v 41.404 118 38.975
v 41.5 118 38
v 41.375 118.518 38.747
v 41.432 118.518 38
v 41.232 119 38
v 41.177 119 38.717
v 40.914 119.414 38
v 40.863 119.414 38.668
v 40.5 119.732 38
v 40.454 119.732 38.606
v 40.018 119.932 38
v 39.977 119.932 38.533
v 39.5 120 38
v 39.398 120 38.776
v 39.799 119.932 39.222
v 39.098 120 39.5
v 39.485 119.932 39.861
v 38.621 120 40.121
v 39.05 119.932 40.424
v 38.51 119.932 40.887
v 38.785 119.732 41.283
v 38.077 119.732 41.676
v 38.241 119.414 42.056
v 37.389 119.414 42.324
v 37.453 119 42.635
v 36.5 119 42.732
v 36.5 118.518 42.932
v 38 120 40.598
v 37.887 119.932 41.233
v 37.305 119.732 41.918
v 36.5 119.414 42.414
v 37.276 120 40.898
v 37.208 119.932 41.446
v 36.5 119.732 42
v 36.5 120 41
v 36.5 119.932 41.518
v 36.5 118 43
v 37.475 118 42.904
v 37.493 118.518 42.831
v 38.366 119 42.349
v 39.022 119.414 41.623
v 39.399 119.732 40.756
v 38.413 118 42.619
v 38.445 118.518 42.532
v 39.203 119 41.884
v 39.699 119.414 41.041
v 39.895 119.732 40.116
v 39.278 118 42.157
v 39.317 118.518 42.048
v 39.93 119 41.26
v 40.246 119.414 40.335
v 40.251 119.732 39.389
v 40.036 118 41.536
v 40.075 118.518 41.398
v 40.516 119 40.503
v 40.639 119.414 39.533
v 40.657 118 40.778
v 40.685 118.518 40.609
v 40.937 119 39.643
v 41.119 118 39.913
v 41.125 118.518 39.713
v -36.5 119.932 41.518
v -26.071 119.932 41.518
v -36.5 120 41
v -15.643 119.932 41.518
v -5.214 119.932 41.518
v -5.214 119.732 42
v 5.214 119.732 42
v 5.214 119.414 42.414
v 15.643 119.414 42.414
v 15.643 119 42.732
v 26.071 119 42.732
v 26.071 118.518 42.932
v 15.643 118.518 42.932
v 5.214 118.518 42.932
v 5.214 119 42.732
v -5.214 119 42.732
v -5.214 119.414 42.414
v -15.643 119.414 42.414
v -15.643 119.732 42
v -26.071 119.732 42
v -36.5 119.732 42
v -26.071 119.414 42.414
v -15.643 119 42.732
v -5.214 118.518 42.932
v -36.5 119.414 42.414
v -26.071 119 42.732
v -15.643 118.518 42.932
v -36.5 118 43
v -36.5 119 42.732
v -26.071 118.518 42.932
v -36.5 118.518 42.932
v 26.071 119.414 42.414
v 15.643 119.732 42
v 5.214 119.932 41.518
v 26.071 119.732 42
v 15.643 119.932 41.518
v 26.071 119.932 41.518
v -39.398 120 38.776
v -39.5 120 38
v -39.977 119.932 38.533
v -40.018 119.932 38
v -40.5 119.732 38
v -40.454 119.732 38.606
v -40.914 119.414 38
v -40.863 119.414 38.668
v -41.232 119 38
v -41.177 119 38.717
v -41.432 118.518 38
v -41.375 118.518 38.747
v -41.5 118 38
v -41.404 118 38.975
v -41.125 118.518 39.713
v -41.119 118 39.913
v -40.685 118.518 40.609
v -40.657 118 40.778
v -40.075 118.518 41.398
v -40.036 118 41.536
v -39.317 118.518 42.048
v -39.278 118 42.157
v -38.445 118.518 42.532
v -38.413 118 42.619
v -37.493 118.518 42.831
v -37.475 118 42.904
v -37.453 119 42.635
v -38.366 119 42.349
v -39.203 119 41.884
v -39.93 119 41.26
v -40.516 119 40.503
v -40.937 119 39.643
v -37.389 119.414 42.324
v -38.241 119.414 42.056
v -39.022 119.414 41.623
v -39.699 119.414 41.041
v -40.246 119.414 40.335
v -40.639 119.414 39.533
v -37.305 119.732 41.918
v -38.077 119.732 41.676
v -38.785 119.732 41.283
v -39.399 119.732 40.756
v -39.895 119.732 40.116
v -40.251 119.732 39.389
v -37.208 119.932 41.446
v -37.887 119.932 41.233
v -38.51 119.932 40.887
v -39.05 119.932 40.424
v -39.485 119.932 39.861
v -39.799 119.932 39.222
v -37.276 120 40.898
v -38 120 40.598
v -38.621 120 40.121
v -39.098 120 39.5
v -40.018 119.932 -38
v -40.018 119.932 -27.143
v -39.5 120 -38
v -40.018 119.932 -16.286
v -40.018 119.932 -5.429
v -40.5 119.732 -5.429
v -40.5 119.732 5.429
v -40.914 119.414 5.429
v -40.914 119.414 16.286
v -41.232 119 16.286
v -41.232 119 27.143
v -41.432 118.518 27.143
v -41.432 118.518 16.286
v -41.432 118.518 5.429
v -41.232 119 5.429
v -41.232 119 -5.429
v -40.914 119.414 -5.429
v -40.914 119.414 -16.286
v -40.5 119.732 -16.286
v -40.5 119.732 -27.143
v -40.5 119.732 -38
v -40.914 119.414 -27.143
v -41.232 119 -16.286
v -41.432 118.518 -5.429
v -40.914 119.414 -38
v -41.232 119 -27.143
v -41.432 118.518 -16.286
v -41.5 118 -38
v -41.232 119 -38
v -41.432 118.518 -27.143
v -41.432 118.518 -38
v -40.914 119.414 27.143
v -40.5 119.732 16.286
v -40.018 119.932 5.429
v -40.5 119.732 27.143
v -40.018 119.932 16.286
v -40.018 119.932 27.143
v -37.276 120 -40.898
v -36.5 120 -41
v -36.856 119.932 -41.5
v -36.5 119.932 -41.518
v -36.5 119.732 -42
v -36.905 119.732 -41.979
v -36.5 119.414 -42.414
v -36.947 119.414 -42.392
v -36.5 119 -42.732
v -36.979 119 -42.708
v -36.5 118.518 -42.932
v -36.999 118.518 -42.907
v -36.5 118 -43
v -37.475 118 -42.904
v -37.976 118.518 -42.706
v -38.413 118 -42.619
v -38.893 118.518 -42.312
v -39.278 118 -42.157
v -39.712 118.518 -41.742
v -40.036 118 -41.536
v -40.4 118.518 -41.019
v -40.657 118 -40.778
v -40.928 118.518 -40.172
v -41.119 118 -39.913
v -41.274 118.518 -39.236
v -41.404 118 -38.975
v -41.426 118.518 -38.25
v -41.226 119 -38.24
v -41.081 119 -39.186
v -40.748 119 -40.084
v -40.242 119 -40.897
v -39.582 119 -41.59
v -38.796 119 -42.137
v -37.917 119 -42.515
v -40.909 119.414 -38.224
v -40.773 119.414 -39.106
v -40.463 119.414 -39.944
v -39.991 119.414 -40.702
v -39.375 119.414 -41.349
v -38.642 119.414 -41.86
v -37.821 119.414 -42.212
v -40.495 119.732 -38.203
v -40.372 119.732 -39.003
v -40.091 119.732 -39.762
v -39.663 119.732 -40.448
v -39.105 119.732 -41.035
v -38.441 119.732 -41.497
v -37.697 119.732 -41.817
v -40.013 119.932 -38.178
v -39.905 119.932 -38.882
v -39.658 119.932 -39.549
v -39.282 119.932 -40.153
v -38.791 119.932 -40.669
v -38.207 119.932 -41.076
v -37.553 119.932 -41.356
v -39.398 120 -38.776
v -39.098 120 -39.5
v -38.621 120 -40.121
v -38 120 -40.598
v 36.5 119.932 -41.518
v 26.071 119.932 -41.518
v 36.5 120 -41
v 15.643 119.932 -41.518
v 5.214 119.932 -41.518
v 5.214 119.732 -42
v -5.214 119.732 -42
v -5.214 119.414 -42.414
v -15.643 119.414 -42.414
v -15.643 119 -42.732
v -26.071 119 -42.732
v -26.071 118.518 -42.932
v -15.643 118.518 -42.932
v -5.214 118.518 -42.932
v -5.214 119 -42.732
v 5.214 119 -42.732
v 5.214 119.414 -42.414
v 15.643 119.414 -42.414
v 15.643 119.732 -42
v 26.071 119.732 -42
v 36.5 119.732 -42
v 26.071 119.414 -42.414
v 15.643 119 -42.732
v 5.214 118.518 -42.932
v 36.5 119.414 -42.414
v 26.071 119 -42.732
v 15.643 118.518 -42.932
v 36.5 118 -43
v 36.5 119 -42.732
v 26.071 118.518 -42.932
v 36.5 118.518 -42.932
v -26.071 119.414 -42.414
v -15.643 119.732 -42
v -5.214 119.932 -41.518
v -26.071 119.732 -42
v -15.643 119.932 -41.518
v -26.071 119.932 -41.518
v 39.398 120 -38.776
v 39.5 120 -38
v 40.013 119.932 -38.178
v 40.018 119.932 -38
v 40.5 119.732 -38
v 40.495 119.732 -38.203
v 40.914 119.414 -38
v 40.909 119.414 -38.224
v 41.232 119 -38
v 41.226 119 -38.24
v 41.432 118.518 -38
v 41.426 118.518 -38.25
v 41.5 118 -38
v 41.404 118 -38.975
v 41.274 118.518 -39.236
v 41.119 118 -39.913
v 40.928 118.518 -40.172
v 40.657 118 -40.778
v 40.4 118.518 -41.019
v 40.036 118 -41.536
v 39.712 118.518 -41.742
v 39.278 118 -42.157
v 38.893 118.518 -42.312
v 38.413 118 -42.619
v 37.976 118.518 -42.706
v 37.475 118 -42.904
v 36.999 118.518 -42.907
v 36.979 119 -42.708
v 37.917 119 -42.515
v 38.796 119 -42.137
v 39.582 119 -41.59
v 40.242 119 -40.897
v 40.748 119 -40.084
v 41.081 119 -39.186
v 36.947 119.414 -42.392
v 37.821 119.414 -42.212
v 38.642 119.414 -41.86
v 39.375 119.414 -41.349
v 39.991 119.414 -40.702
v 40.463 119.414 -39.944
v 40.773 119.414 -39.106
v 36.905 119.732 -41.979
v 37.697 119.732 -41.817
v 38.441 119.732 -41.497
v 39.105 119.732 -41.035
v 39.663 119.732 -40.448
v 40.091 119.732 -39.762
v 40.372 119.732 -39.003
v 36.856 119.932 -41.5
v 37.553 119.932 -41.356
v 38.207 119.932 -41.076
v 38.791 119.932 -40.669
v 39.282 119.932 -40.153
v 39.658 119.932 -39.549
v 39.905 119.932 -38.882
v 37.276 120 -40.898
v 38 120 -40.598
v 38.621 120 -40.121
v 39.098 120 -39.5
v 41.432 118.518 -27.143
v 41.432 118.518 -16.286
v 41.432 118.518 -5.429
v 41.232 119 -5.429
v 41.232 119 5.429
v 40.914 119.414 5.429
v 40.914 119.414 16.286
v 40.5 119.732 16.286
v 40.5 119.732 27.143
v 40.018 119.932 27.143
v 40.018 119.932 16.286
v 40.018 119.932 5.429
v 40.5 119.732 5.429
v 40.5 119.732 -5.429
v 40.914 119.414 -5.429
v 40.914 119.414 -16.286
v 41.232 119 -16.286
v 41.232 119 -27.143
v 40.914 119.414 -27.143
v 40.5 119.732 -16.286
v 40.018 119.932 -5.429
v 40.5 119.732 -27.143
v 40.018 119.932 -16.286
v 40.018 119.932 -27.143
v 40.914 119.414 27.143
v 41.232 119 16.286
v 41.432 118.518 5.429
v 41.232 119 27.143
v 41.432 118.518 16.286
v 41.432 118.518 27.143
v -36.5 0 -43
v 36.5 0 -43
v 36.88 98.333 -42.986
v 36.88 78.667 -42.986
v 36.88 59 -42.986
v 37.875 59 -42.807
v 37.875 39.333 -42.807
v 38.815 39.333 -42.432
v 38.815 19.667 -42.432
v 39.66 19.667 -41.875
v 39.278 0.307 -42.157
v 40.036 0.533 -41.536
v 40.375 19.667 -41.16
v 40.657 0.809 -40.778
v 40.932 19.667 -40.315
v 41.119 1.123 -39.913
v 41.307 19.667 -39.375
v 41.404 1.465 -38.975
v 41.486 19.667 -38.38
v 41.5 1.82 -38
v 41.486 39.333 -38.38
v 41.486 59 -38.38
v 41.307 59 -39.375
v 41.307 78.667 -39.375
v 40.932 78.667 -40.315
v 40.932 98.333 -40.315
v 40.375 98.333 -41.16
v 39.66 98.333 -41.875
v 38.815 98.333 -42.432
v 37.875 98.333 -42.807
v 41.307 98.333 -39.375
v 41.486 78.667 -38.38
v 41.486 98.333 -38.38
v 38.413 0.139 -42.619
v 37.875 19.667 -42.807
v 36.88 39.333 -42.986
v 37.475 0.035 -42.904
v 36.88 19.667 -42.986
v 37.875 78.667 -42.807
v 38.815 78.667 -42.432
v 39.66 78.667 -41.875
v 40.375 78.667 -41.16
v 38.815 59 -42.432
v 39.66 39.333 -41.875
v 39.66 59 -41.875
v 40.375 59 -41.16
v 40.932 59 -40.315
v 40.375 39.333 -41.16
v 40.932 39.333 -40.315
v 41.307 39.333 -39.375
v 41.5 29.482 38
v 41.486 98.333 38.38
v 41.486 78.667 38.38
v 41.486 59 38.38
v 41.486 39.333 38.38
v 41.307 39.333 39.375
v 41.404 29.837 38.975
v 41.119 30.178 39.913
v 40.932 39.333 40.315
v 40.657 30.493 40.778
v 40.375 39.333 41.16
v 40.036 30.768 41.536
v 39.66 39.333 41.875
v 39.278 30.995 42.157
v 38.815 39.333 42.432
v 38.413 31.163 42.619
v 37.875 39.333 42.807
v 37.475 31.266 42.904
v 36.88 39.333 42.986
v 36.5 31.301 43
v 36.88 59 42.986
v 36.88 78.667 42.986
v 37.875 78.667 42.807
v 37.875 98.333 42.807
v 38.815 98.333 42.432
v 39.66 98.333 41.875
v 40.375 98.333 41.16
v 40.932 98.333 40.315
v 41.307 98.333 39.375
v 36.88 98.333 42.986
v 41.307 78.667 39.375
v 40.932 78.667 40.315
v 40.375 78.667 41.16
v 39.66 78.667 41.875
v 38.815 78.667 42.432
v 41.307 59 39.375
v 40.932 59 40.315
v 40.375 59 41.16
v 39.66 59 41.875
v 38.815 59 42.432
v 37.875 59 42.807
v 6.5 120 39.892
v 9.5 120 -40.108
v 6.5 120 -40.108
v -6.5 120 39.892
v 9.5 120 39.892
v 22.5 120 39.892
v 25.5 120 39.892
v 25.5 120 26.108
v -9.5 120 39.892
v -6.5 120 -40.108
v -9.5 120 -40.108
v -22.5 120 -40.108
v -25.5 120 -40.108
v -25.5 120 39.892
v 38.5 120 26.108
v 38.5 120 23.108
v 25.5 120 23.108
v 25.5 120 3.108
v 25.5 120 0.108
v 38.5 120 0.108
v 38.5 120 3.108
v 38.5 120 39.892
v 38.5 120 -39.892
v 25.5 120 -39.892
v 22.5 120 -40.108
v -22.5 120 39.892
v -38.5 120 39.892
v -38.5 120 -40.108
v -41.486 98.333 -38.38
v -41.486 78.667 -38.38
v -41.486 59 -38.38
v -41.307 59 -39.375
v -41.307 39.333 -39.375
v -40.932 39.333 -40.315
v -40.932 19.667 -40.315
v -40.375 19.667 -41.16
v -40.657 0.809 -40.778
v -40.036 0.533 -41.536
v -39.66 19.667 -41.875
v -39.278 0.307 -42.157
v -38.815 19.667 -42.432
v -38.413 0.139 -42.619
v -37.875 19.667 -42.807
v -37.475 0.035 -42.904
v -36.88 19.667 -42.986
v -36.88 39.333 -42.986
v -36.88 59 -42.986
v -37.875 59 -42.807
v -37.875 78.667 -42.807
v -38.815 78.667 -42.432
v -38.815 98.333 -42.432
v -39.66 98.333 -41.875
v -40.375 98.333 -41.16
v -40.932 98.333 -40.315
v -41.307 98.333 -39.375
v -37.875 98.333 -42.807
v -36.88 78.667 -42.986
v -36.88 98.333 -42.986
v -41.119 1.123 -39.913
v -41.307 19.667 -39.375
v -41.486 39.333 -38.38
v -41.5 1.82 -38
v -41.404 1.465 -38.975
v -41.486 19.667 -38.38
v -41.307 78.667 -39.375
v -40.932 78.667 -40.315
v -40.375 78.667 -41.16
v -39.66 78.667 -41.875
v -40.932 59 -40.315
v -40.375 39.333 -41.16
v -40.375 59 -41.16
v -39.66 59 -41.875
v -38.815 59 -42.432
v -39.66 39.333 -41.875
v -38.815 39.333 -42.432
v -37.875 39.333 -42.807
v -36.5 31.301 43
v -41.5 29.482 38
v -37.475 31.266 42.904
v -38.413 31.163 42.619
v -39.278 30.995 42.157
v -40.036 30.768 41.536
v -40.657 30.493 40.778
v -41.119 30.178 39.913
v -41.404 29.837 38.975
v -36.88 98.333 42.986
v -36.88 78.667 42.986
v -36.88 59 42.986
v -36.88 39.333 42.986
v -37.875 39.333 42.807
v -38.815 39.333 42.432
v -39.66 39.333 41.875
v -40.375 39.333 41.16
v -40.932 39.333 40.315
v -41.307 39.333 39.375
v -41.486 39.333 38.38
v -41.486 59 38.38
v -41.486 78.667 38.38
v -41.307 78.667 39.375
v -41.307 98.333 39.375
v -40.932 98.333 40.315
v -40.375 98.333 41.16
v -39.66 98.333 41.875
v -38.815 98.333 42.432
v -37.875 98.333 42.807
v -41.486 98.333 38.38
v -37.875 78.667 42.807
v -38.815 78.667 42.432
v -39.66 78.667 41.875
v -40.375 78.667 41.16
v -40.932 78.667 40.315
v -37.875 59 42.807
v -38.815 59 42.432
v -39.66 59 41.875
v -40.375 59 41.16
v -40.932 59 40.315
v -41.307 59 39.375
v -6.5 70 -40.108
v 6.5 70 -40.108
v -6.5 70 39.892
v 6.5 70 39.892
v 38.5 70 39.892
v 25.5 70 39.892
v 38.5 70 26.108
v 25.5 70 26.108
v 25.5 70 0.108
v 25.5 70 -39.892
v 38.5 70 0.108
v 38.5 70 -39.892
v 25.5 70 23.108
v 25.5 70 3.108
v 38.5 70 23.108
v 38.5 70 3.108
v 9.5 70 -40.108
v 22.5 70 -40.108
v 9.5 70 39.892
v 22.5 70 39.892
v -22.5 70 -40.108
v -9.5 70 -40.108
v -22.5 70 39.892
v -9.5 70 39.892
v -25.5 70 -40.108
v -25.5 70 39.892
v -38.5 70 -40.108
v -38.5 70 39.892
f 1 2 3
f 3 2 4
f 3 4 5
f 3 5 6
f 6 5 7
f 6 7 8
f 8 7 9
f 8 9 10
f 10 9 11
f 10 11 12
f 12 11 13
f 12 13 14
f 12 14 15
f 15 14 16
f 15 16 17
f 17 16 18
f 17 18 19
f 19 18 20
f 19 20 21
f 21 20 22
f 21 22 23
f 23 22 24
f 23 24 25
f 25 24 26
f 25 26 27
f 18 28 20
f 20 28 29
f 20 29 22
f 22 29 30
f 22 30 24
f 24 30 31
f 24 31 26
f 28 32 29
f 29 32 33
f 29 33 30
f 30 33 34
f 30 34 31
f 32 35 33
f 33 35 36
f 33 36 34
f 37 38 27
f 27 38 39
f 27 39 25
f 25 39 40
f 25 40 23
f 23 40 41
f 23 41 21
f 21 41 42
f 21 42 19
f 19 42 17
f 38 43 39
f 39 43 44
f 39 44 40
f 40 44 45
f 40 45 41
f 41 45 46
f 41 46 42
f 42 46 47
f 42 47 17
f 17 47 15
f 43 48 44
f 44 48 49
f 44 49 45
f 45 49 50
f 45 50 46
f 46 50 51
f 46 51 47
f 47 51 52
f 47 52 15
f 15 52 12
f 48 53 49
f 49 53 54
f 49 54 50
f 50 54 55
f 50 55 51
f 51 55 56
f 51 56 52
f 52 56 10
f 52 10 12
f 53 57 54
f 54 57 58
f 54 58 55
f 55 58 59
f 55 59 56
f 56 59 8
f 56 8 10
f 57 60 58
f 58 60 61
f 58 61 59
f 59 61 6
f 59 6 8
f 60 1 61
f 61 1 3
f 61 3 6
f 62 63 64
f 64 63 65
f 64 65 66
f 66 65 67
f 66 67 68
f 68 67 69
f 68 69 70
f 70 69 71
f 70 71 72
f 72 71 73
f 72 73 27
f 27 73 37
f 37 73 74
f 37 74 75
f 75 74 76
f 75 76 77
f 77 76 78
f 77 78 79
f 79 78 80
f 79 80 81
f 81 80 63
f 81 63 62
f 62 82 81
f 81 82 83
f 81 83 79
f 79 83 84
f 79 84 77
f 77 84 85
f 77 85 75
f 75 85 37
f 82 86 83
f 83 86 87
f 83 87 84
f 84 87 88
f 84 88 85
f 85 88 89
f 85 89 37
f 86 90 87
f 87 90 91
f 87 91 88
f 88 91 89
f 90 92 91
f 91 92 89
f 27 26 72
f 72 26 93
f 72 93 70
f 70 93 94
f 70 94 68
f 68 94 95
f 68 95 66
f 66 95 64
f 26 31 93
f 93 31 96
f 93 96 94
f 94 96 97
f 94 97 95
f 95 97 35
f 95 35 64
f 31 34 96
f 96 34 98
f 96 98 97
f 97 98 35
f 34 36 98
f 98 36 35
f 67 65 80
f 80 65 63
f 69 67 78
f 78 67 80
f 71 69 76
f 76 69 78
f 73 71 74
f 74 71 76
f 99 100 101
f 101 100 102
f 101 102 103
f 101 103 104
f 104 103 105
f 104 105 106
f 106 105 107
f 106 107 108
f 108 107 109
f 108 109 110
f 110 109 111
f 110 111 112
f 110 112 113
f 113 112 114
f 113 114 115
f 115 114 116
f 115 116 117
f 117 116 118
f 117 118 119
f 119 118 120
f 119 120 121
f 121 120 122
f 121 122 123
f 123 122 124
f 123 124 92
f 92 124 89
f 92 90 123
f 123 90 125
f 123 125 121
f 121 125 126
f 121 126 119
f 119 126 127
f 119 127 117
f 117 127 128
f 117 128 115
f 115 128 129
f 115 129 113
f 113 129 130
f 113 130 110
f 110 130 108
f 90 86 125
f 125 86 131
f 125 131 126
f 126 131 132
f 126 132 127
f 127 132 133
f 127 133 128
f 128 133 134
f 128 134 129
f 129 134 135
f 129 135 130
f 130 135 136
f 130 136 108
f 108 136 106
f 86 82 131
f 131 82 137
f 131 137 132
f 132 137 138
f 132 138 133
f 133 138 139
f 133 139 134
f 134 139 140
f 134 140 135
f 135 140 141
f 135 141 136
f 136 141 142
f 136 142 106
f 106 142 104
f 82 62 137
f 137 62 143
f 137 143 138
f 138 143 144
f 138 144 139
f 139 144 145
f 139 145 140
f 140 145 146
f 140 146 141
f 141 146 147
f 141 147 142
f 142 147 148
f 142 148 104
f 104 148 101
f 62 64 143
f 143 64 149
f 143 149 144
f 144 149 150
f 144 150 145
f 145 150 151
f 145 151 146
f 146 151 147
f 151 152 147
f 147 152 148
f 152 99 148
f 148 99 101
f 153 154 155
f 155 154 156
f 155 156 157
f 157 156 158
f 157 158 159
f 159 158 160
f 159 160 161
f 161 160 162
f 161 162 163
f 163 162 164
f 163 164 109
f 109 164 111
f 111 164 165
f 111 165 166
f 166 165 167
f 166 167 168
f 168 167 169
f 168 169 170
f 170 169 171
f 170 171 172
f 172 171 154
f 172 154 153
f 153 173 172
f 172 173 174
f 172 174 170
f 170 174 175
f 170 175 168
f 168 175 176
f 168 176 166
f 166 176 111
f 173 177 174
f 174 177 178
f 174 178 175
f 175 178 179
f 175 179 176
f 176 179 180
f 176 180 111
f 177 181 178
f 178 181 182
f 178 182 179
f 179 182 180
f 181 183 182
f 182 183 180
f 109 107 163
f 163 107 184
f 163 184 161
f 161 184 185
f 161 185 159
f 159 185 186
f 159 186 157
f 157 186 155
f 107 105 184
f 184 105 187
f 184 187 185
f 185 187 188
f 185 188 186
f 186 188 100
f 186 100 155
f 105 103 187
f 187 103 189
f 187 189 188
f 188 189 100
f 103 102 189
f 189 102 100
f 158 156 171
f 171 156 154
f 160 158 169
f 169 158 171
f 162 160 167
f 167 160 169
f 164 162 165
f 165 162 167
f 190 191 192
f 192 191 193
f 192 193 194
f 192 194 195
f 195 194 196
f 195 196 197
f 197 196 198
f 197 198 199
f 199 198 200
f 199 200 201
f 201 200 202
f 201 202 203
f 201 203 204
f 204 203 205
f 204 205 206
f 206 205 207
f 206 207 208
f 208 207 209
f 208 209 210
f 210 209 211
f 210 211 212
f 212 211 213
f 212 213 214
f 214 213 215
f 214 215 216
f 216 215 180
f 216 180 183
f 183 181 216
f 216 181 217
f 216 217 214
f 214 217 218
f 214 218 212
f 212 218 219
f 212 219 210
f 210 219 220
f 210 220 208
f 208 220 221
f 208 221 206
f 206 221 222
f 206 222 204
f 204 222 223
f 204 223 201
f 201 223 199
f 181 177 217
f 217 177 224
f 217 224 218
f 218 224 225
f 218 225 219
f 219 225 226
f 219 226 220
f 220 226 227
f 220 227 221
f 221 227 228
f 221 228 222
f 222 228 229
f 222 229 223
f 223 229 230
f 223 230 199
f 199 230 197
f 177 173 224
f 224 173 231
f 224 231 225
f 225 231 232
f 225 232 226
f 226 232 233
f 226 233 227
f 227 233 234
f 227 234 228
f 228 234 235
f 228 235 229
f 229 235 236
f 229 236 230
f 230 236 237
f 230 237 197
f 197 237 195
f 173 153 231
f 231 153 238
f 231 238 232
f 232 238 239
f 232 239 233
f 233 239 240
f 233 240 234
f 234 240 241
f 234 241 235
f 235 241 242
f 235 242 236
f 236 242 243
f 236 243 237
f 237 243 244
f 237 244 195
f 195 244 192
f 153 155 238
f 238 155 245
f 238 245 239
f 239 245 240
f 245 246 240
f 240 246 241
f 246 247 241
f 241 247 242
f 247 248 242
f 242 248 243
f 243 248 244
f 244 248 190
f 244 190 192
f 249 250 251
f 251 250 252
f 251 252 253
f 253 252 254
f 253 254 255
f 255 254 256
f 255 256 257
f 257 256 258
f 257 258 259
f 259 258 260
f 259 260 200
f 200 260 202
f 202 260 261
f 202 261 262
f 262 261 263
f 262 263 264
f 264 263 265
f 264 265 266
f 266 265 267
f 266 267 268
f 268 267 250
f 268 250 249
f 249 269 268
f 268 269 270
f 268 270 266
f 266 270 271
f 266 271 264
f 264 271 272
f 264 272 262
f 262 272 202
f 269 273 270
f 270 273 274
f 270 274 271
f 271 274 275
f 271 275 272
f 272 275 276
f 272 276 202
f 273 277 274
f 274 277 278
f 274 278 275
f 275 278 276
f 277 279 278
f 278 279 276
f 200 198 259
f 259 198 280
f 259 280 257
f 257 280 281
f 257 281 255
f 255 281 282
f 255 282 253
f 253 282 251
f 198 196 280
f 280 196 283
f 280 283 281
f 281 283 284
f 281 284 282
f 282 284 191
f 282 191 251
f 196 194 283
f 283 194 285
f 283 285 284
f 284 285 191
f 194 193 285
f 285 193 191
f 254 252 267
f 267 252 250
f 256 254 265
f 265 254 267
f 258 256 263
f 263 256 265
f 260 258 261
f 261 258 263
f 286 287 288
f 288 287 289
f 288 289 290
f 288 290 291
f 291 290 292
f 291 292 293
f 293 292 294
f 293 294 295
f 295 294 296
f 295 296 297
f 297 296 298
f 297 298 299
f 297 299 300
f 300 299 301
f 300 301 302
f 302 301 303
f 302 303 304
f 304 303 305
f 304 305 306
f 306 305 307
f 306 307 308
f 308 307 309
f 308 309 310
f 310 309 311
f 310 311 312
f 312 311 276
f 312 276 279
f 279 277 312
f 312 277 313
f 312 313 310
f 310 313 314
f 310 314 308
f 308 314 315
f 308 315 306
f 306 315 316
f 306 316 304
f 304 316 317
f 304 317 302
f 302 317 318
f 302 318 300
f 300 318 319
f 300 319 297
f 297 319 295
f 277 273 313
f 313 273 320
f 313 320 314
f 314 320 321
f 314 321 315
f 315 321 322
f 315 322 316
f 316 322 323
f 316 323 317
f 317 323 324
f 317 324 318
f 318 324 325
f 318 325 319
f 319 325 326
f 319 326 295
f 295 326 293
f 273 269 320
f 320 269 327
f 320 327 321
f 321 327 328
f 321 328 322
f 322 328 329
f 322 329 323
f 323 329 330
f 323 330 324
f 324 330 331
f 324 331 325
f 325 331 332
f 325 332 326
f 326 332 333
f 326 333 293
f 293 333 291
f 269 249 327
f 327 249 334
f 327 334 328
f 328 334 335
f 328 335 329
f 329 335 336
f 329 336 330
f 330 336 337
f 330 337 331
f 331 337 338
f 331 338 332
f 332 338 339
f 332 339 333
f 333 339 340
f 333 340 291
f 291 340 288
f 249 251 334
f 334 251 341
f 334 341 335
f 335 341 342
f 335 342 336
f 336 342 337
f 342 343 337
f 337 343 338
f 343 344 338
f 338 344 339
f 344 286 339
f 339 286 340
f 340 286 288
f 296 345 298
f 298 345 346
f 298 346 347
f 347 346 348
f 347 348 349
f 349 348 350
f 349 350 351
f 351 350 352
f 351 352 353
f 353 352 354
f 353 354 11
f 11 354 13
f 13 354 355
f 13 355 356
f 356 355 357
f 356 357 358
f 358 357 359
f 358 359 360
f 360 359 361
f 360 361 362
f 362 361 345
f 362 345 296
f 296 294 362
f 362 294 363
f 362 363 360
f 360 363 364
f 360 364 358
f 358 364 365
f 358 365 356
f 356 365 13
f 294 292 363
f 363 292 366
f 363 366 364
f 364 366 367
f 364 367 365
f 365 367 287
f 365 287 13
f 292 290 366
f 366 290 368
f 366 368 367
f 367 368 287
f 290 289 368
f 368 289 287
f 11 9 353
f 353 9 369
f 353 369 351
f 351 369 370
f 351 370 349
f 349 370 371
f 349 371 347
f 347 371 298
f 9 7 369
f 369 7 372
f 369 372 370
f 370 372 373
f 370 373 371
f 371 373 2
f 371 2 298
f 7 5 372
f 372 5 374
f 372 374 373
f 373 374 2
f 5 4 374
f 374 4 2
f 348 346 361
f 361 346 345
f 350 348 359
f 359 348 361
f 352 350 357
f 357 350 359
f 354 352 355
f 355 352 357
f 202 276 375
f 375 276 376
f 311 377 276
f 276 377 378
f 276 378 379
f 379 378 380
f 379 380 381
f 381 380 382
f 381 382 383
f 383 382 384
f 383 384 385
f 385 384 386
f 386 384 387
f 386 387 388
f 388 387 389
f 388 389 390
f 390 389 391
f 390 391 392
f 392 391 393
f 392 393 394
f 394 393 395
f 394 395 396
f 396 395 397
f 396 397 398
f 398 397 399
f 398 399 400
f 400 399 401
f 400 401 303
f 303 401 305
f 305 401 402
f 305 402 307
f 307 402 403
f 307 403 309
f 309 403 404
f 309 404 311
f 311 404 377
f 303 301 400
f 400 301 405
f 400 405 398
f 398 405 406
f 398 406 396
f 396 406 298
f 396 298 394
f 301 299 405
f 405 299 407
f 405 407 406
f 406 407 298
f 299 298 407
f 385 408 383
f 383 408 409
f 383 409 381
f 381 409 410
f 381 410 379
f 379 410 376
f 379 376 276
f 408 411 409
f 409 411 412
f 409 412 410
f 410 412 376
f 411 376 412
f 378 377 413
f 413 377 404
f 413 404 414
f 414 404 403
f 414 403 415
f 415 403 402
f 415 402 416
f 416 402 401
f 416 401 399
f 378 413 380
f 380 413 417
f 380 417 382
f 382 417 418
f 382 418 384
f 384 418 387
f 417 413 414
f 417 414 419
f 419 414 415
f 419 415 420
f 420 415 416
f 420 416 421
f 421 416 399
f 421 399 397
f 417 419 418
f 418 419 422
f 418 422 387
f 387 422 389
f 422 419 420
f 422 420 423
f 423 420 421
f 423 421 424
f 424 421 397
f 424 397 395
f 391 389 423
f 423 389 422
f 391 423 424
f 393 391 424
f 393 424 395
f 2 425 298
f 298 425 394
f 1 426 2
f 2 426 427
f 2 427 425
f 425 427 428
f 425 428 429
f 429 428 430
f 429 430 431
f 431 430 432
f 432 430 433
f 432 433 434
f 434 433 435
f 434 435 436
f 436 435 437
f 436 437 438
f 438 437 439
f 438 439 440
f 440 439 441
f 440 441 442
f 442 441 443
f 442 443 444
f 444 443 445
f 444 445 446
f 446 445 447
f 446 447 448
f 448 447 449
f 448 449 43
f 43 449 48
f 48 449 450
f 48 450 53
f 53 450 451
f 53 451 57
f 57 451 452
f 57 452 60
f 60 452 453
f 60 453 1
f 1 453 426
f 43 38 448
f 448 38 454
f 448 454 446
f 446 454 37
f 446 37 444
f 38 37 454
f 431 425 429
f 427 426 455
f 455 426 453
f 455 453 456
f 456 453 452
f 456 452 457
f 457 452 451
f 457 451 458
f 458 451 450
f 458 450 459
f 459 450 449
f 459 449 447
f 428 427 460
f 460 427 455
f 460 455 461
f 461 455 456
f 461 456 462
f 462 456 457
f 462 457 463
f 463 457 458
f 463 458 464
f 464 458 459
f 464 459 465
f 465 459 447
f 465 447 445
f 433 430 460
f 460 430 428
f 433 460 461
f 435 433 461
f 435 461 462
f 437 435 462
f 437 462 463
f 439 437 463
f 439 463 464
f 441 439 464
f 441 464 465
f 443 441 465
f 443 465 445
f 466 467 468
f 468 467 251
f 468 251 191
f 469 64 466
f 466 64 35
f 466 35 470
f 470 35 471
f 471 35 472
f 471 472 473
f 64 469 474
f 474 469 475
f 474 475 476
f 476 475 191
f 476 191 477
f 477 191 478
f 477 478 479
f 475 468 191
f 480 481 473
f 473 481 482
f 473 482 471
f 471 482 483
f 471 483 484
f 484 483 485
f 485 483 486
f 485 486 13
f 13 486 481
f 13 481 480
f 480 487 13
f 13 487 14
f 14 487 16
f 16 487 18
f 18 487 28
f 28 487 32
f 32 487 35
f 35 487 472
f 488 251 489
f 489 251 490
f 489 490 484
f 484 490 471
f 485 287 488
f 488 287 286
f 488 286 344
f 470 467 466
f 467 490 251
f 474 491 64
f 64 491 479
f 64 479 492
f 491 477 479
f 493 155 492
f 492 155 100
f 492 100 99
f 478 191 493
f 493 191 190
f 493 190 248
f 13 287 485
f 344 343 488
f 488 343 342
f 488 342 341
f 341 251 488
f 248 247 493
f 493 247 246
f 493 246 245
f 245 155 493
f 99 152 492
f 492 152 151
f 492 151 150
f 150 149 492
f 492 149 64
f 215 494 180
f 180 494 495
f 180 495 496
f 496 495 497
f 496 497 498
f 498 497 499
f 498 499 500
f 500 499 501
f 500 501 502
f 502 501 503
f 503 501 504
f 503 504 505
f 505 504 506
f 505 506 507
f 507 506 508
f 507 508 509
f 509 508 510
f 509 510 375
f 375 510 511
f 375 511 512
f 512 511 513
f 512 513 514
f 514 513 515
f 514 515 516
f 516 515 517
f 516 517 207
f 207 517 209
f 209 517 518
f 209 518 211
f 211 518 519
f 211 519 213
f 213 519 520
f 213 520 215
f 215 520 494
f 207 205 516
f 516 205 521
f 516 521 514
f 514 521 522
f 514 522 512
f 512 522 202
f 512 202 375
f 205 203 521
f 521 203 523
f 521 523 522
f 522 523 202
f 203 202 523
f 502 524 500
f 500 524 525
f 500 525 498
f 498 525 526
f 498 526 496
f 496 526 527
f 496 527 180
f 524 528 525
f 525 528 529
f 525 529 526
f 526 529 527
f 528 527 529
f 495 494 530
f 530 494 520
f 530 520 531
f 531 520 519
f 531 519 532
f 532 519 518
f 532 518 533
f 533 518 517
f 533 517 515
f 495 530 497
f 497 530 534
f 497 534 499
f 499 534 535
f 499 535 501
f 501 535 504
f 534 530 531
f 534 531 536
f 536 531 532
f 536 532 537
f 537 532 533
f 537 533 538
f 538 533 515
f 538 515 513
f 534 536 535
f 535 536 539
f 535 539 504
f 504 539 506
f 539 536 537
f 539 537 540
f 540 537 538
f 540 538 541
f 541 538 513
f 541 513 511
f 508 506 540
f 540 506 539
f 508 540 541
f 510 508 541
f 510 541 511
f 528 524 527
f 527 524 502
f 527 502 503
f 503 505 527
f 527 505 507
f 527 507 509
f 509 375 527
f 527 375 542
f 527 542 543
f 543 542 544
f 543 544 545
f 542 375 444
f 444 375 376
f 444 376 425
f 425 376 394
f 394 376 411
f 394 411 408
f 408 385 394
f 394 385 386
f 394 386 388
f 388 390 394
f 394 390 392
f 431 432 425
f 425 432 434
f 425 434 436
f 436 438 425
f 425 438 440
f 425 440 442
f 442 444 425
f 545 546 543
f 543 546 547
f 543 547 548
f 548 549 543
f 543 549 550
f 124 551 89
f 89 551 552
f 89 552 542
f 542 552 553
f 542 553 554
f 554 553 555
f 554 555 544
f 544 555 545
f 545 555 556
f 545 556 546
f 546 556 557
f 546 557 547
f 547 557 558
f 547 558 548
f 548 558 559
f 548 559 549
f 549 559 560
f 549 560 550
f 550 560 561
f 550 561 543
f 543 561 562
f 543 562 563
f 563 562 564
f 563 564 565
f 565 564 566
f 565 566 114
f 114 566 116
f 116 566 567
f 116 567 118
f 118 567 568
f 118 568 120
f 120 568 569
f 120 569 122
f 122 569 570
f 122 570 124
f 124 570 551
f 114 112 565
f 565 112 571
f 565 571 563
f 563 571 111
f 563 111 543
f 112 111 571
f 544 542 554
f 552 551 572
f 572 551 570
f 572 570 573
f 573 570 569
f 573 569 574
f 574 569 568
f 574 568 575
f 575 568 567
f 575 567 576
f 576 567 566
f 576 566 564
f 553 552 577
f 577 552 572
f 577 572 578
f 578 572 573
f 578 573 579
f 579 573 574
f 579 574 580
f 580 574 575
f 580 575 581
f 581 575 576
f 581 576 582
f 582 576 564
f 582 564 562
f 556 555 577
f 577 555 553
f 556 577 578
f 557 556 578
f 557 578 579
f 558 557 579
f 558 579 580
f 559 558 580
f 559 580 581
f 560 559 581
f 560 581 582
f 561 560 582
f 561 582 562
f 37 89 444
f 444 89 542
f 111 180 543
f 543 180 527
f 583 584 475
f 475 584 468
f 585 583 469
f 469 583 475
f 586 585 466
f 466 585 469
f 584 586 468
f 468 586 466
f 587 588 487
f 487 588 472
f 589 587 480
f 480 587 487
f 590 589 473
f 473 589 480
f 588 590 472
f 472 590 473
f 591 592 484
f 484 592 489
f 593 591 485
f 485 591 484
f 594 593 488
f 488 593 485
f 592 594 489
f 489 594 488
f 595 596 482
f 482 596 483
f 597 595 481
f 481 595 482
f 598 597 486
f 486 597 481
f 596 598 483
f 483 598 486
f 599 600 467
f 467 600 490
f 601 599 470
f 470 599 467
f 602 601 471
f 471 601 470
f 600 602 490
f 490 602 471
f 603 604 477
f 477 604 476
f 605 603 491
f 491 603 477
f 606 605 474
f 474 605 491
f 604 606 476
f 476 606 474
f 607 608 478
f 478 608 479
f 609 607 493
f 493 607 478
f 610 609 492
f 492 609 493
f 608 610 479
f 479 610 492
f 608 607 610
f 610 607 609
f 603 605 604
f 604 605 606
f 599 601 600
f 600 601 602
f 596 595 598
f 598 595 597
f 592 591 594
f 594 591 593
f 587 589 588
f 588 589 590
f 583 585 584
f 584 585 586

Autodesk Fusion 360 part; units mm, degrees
sketch "Sketch1" plane through (0, 0, 0) normal (0, 1, 0) x (1, 0, 0)
  line L0 (41.5, 43) -> (-41.5, 43)
  line L1 (-41.5, 43) -> (-41.5, -43)
  line L2 (-41.5, -43) -> (41.5, -43)
  line L3 (41.5, -43) -> (41.5, 43)
  line L4 (41.5, 43) -> (-41.5, -43) construction
  line L5 (-41.5, 43) -> (41.5, -43) construction
  line L6 (-38.5, -39.8916) -> (-25.5, -39.8916)
  line L7 (-25.5, -39.8916) -> (-25.5, 40.1084)
  line L8 (-25.5, 40.1084) -> (-38.5, 40.1084)
  line L9 (-38.5, 40.1084) -> (-38.5, -39.8916)
  line L10 (-22.5, 40.1084) -> (-22.5, -39.8916)
  line L11 (-9.5, 40.1084) -> (-22.5, 40.1084)
  line L12 (-9.5, -39.8916) -> (-9.5, 40.1084)
  line L13 (-22.5, -39.8916) -> (-9.5, -39.8916)
  line L14 (-6.5, 40.1084) -> (-6.5, -39.8916)
  line L15 (6.5, 40.1084) -> (-6.5, 40.1084)
  line L16 (6.5, -39.8916) -> (6.5, 40.1084)
  line L17 (-6.5, -39.8916) -> (6.5, -39.8916)
  line L18 (9.5, 40.1084) -> (9.5, -39.8916)
  line L19 (22.5, 40.1084) -> (9.5, 40.1084)
  line L20 (22.5, -39.8916) -> (22.5, 40.1084)
  line L21 (9.5, -39.8916) -> (22.5, -39.8916)
  line L22 (38.5, 39.8916) -> (25.5, 39.8916)
  line L23 (25.5, 39.8916) -> (25.5, -0.1084)
  line L24 (25.5, -0.1084) -> (38.5, -0.1084)
  line L25 (38.5, -0.1084) -> (38.5, 39.8916)
  line L26 (38.5, -3.1084) -> (25.5, -3.1084)
  line L27 (25.5, -3.1084) -> (25.5, -23.1084)
  line L28 (25.5, -23.1084) -> (38.5, -23.1084)
  line L29 (38.5, -23.1084) -> (38.5, -3.1084)
  line L30 (38.5, -39.8916) -> (25.5, -39.8916)
  line L31 (25.5, -39.8916) -> (25.5, -26.1084)
  line L32 (25.5, -26.1084) -> (38.5, -26.1084)
  line L33 (38.5, -26.1084) -> (38.5, -39.8916)
  dimension "d1" = 83
  dimension "d2" = 86
  dimension "d3" = 80
  dimension "d4" = 13
  dimension "d5" = 3
  dimension "d8" = 48
  dimension "d9" = 0
  dimension "d10" = 3
  dimension "d11" = 40
  dimension "d12" = 3
  dimension "d13" = 3
  dimension "d14" = 20
  dimension "d17" = 13
  dimension "d18" = 3
  dimension "d19" = 3
extrude "Extrude1" add sketch "Sketch1" along normal blind 70 contours L0 L1 L2 L3 | L6 L7 L8 L9 | L10 L11 L12 L13 | L14 L15 L16 L17 | L18 L19 L20 L21 | L22 L23 L24 L25 | L26 L27 L28 L29 | L30 L31 L32 L33
extrude "Extrude2" add sketch "Sketch1" along normal blind 50 from surface at 70
sketch "Sketch2" plane through (41.5, 0, 0) normal (1, 0, 0) x (0, 0, -1)
  line L0 (-43, 0) -> (43, 0)
  line L1 (43, 0) -> (43, 120)
  line L2 (43, 120) -> (-43, 120)
  line L3 (-43, 120) -> (-43, 0)
  line L4 (-43, 31.3014) -> (43, 0)
  dimension "d29" = 20
extrude "Extrude4" cut sketch "Sketch2" against normal up to surface (83 mm away) contours L0 L3 L4
fillet "Fillet2" radius 5 4 edges at (41.5, 75.6507, 43) (-41.5, 75.6507, 43) (41.5, 60, -43) (-41.5, 60, -43)
fillet "Fillet3" radius 2 8 edges at (40.0355, 120, 41.5355) (41.5, 120, 0) (40.0355, 120, -41.5355) (0, 120, -43) (-40.0355, 120, -41.5355) (-41.5, 120, 0) (-40.0355, 120, 41.5355) (0, 120, 43)
equation "d1 = ( ( 13 + 3 ) * 5 ) * 1 mm + 3 mm"
equation "d2 = 80 mm + 6 mm"
equation "d8 = ( 16 * 3 ) * 1 mm"
